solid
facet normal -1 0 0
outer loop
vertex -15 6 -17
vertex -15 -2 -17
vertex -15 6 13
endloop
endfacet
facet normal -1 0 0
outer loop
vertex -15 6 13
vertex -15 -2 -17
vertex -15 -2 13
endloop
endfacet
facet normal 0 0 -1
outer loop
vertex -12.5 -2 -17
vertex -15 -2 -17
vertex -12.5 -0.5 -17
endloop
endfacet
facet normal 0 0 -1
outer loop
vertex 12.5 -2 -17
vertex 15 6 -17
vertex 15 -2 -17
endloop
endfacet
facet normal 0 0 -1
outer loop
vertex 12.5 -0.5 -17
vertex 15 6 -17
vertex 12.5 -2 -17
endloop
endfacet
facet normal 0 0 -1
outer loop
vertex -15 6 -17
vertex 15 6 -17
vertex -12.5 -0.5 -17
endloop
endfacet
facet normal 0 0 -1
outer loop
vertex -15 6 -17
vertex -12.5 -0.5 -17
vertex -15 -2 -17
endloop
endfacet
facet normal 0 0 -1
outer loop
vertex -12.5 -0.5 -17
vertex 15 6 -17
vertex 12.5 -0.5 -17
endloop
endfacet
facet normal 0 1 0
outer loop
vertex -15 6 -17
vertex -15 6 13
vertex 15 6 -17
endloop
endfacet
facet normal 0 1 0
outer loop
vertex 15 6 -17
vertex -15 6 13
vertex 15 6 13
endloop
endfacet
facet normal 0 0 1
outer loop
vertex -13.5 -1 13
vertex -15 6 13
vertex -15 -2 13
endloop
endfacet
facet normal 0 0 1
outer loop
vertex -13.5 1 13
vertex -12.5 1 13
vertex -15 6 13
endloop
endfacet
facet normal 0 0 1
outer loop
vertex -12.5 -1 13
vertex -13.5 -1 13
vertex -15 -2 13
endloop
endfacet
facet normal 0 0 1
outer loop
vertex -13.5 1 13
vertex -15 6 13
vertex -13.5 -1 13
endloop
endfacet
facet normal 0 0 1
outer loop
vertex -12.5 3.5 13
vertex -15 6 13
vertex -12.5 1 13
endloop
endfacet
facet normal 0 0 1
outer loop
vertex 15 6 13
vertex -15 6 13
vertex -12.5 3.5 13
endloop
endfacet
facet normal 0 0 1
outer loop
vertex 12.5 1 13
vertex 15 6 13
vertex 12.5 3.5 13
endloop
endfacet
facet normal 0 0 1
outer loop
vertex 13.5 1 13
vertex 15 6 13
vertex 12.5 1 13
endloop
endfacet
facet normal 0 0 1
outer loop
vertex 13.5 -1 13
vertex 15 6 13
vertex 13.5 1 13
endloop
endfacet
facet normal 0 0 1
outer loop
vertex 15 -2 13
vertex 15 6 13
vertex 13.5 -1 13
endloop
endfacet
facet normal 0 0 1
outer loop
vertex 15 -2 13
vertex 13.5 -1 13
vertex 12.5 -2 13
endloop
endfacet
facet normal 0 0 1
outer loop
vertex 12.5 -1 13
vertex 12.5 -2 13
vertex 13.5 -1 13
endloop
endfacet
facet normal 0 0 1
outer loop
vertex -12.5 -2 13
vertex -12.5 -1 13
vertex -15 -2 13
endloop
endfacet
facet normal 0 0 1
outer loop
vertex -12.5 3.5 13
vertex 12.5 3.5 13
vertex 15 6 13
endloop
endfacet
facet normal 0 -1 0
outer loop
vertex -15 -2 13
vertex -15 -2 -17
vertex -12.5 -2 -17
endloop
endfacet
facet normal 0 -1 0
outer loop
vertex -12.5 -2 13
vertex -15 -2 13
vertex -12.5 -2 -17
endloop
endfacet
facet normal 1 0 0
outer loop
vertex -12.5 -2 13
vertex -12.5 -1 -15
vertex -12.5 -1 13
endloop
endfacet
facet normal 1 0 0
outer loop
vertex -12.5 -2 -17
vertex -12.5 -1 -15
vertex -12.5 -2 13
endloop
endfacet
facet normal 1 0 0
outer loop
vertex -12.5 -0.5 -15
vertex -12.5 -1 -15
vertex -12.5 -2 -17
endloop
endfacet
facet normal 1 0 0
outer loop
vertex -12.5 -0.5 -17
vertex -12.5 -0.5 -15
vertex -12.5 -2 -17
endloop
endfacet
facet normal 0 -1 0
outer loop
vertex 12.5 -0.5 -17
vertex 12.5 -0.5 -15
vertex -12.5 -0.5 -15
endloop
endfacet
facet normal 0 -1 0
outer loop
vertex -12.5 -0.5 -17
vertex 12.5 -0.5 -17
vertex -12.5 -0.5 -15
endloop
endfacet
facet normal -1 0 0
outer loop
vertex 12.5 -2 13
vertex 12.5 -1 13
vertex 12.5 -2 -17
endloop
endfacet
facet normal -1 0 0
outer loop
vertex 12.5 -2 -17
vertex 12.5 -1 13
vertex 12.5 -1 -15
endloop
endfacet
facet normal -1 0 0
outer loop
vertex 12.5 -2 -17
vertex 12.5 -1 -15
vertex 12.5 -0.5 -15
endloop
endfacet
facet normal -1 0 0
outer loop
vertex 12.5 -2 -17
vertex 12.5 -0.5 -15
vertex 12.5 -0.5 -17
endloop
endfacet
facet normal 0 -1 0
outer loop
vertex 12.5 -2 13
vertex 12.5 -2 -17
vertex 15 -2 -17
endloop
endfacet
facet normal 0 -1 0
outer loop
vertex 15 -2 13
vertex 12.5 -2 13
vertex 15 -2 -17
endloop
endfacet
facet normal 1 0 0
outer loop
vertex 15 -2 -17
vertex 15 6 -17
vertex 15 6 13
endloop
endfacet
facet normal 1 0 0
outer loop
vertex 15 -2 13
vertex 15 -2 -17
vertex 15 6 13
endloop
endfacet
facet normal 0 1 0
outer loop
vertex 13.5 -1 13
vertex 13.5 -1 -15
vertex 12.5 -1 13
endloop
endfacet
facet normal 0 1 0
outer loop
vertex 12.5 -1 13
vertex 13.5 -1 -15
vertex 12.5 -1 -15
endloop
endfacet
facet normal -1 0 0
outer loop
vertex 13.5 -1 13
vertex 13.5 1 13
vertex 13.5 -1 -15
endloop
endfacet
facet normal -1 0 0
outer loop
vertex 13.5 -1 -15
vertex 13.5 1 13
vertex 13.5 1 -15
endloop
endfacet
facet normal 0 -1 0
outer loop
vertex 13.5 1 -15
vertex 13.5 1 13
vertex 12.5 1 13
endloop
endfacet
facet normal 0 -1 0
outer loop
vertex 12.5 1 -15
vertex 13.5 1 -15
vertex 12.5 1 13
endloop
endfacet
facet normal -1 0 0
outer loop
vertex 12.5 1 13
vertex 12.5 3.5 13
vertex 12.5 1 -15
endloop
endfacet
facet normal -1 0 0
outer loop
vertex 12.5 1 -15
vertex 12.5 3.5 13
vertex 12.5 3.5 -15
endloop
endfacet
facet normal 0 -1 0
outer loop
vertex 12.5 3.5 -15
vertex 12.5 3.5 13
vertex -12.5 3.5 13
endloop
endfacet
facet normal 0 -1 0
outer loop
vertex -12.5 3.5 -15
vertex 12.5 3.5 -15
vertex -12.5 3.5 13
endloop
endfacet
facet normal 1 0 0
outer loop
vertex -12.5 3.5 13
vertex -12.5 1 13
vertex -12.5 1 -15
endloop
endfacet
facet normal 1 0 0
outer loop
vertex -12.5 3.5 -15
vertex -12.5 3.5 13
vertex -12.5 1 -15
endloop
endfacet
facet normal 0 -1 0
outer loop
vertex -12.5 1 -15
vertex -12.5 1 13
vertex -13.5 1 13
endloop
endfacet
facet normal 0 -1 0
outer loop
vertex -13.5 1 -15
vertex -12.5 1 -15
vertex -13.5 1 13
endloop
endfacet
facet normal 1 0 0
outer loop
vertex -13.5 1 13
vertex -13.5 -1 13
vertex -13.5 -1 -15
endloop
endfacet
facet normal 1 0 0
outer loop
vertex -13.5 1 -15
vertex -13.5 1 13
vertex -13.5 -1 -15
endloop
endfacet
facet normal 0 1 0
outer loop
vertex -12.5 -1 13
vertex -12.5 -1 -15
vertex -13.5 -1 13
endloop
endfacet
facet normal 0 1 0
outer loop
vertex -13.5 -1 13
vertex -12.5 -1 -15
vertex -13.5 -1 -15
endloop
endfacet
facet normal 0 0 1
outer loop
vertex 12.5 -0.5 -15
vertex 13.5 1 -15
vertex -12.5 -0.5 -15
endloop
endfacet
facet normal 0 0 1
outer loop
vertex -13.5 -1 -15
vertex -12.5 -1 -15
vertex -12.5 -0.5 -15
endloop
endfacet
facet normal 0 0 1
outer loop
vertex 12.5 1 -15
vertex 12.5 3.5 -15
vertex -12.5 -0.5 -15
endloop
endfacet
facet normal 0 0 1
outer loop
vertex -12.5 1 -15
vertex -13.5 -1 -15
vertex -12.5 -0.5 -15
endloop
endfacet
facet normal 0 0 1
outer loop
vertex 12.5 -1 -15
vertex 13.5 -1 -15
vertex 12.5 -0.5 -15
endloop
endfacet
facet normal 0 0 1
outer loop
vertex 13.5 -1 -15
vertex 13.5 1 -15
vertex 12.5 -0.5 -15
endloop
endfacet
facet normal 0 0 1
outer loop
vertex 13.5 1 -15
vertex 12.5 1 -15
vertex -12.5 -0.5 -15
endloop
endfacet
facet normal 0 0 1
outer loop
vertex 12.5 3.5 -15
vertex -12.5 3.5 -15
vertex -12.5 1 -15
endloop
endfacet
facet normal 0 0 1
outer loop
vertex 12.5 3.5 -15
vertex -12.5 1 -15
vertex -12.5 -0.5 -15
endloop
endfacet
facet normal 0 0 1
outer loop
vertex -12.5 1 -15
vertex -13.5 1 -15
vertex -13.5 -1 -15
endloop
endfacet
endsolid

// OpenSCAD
rotate([90,0,0])
difference() {
  translate([0,-2,-2]) cube([30,30,8], center=true);
  cube([27,30,2], center=true);
  translate([0,-2,2]) cube([25,32,3], center=true);
  translate([0,0,-2]) cube([25,30,3], center=true);
}
